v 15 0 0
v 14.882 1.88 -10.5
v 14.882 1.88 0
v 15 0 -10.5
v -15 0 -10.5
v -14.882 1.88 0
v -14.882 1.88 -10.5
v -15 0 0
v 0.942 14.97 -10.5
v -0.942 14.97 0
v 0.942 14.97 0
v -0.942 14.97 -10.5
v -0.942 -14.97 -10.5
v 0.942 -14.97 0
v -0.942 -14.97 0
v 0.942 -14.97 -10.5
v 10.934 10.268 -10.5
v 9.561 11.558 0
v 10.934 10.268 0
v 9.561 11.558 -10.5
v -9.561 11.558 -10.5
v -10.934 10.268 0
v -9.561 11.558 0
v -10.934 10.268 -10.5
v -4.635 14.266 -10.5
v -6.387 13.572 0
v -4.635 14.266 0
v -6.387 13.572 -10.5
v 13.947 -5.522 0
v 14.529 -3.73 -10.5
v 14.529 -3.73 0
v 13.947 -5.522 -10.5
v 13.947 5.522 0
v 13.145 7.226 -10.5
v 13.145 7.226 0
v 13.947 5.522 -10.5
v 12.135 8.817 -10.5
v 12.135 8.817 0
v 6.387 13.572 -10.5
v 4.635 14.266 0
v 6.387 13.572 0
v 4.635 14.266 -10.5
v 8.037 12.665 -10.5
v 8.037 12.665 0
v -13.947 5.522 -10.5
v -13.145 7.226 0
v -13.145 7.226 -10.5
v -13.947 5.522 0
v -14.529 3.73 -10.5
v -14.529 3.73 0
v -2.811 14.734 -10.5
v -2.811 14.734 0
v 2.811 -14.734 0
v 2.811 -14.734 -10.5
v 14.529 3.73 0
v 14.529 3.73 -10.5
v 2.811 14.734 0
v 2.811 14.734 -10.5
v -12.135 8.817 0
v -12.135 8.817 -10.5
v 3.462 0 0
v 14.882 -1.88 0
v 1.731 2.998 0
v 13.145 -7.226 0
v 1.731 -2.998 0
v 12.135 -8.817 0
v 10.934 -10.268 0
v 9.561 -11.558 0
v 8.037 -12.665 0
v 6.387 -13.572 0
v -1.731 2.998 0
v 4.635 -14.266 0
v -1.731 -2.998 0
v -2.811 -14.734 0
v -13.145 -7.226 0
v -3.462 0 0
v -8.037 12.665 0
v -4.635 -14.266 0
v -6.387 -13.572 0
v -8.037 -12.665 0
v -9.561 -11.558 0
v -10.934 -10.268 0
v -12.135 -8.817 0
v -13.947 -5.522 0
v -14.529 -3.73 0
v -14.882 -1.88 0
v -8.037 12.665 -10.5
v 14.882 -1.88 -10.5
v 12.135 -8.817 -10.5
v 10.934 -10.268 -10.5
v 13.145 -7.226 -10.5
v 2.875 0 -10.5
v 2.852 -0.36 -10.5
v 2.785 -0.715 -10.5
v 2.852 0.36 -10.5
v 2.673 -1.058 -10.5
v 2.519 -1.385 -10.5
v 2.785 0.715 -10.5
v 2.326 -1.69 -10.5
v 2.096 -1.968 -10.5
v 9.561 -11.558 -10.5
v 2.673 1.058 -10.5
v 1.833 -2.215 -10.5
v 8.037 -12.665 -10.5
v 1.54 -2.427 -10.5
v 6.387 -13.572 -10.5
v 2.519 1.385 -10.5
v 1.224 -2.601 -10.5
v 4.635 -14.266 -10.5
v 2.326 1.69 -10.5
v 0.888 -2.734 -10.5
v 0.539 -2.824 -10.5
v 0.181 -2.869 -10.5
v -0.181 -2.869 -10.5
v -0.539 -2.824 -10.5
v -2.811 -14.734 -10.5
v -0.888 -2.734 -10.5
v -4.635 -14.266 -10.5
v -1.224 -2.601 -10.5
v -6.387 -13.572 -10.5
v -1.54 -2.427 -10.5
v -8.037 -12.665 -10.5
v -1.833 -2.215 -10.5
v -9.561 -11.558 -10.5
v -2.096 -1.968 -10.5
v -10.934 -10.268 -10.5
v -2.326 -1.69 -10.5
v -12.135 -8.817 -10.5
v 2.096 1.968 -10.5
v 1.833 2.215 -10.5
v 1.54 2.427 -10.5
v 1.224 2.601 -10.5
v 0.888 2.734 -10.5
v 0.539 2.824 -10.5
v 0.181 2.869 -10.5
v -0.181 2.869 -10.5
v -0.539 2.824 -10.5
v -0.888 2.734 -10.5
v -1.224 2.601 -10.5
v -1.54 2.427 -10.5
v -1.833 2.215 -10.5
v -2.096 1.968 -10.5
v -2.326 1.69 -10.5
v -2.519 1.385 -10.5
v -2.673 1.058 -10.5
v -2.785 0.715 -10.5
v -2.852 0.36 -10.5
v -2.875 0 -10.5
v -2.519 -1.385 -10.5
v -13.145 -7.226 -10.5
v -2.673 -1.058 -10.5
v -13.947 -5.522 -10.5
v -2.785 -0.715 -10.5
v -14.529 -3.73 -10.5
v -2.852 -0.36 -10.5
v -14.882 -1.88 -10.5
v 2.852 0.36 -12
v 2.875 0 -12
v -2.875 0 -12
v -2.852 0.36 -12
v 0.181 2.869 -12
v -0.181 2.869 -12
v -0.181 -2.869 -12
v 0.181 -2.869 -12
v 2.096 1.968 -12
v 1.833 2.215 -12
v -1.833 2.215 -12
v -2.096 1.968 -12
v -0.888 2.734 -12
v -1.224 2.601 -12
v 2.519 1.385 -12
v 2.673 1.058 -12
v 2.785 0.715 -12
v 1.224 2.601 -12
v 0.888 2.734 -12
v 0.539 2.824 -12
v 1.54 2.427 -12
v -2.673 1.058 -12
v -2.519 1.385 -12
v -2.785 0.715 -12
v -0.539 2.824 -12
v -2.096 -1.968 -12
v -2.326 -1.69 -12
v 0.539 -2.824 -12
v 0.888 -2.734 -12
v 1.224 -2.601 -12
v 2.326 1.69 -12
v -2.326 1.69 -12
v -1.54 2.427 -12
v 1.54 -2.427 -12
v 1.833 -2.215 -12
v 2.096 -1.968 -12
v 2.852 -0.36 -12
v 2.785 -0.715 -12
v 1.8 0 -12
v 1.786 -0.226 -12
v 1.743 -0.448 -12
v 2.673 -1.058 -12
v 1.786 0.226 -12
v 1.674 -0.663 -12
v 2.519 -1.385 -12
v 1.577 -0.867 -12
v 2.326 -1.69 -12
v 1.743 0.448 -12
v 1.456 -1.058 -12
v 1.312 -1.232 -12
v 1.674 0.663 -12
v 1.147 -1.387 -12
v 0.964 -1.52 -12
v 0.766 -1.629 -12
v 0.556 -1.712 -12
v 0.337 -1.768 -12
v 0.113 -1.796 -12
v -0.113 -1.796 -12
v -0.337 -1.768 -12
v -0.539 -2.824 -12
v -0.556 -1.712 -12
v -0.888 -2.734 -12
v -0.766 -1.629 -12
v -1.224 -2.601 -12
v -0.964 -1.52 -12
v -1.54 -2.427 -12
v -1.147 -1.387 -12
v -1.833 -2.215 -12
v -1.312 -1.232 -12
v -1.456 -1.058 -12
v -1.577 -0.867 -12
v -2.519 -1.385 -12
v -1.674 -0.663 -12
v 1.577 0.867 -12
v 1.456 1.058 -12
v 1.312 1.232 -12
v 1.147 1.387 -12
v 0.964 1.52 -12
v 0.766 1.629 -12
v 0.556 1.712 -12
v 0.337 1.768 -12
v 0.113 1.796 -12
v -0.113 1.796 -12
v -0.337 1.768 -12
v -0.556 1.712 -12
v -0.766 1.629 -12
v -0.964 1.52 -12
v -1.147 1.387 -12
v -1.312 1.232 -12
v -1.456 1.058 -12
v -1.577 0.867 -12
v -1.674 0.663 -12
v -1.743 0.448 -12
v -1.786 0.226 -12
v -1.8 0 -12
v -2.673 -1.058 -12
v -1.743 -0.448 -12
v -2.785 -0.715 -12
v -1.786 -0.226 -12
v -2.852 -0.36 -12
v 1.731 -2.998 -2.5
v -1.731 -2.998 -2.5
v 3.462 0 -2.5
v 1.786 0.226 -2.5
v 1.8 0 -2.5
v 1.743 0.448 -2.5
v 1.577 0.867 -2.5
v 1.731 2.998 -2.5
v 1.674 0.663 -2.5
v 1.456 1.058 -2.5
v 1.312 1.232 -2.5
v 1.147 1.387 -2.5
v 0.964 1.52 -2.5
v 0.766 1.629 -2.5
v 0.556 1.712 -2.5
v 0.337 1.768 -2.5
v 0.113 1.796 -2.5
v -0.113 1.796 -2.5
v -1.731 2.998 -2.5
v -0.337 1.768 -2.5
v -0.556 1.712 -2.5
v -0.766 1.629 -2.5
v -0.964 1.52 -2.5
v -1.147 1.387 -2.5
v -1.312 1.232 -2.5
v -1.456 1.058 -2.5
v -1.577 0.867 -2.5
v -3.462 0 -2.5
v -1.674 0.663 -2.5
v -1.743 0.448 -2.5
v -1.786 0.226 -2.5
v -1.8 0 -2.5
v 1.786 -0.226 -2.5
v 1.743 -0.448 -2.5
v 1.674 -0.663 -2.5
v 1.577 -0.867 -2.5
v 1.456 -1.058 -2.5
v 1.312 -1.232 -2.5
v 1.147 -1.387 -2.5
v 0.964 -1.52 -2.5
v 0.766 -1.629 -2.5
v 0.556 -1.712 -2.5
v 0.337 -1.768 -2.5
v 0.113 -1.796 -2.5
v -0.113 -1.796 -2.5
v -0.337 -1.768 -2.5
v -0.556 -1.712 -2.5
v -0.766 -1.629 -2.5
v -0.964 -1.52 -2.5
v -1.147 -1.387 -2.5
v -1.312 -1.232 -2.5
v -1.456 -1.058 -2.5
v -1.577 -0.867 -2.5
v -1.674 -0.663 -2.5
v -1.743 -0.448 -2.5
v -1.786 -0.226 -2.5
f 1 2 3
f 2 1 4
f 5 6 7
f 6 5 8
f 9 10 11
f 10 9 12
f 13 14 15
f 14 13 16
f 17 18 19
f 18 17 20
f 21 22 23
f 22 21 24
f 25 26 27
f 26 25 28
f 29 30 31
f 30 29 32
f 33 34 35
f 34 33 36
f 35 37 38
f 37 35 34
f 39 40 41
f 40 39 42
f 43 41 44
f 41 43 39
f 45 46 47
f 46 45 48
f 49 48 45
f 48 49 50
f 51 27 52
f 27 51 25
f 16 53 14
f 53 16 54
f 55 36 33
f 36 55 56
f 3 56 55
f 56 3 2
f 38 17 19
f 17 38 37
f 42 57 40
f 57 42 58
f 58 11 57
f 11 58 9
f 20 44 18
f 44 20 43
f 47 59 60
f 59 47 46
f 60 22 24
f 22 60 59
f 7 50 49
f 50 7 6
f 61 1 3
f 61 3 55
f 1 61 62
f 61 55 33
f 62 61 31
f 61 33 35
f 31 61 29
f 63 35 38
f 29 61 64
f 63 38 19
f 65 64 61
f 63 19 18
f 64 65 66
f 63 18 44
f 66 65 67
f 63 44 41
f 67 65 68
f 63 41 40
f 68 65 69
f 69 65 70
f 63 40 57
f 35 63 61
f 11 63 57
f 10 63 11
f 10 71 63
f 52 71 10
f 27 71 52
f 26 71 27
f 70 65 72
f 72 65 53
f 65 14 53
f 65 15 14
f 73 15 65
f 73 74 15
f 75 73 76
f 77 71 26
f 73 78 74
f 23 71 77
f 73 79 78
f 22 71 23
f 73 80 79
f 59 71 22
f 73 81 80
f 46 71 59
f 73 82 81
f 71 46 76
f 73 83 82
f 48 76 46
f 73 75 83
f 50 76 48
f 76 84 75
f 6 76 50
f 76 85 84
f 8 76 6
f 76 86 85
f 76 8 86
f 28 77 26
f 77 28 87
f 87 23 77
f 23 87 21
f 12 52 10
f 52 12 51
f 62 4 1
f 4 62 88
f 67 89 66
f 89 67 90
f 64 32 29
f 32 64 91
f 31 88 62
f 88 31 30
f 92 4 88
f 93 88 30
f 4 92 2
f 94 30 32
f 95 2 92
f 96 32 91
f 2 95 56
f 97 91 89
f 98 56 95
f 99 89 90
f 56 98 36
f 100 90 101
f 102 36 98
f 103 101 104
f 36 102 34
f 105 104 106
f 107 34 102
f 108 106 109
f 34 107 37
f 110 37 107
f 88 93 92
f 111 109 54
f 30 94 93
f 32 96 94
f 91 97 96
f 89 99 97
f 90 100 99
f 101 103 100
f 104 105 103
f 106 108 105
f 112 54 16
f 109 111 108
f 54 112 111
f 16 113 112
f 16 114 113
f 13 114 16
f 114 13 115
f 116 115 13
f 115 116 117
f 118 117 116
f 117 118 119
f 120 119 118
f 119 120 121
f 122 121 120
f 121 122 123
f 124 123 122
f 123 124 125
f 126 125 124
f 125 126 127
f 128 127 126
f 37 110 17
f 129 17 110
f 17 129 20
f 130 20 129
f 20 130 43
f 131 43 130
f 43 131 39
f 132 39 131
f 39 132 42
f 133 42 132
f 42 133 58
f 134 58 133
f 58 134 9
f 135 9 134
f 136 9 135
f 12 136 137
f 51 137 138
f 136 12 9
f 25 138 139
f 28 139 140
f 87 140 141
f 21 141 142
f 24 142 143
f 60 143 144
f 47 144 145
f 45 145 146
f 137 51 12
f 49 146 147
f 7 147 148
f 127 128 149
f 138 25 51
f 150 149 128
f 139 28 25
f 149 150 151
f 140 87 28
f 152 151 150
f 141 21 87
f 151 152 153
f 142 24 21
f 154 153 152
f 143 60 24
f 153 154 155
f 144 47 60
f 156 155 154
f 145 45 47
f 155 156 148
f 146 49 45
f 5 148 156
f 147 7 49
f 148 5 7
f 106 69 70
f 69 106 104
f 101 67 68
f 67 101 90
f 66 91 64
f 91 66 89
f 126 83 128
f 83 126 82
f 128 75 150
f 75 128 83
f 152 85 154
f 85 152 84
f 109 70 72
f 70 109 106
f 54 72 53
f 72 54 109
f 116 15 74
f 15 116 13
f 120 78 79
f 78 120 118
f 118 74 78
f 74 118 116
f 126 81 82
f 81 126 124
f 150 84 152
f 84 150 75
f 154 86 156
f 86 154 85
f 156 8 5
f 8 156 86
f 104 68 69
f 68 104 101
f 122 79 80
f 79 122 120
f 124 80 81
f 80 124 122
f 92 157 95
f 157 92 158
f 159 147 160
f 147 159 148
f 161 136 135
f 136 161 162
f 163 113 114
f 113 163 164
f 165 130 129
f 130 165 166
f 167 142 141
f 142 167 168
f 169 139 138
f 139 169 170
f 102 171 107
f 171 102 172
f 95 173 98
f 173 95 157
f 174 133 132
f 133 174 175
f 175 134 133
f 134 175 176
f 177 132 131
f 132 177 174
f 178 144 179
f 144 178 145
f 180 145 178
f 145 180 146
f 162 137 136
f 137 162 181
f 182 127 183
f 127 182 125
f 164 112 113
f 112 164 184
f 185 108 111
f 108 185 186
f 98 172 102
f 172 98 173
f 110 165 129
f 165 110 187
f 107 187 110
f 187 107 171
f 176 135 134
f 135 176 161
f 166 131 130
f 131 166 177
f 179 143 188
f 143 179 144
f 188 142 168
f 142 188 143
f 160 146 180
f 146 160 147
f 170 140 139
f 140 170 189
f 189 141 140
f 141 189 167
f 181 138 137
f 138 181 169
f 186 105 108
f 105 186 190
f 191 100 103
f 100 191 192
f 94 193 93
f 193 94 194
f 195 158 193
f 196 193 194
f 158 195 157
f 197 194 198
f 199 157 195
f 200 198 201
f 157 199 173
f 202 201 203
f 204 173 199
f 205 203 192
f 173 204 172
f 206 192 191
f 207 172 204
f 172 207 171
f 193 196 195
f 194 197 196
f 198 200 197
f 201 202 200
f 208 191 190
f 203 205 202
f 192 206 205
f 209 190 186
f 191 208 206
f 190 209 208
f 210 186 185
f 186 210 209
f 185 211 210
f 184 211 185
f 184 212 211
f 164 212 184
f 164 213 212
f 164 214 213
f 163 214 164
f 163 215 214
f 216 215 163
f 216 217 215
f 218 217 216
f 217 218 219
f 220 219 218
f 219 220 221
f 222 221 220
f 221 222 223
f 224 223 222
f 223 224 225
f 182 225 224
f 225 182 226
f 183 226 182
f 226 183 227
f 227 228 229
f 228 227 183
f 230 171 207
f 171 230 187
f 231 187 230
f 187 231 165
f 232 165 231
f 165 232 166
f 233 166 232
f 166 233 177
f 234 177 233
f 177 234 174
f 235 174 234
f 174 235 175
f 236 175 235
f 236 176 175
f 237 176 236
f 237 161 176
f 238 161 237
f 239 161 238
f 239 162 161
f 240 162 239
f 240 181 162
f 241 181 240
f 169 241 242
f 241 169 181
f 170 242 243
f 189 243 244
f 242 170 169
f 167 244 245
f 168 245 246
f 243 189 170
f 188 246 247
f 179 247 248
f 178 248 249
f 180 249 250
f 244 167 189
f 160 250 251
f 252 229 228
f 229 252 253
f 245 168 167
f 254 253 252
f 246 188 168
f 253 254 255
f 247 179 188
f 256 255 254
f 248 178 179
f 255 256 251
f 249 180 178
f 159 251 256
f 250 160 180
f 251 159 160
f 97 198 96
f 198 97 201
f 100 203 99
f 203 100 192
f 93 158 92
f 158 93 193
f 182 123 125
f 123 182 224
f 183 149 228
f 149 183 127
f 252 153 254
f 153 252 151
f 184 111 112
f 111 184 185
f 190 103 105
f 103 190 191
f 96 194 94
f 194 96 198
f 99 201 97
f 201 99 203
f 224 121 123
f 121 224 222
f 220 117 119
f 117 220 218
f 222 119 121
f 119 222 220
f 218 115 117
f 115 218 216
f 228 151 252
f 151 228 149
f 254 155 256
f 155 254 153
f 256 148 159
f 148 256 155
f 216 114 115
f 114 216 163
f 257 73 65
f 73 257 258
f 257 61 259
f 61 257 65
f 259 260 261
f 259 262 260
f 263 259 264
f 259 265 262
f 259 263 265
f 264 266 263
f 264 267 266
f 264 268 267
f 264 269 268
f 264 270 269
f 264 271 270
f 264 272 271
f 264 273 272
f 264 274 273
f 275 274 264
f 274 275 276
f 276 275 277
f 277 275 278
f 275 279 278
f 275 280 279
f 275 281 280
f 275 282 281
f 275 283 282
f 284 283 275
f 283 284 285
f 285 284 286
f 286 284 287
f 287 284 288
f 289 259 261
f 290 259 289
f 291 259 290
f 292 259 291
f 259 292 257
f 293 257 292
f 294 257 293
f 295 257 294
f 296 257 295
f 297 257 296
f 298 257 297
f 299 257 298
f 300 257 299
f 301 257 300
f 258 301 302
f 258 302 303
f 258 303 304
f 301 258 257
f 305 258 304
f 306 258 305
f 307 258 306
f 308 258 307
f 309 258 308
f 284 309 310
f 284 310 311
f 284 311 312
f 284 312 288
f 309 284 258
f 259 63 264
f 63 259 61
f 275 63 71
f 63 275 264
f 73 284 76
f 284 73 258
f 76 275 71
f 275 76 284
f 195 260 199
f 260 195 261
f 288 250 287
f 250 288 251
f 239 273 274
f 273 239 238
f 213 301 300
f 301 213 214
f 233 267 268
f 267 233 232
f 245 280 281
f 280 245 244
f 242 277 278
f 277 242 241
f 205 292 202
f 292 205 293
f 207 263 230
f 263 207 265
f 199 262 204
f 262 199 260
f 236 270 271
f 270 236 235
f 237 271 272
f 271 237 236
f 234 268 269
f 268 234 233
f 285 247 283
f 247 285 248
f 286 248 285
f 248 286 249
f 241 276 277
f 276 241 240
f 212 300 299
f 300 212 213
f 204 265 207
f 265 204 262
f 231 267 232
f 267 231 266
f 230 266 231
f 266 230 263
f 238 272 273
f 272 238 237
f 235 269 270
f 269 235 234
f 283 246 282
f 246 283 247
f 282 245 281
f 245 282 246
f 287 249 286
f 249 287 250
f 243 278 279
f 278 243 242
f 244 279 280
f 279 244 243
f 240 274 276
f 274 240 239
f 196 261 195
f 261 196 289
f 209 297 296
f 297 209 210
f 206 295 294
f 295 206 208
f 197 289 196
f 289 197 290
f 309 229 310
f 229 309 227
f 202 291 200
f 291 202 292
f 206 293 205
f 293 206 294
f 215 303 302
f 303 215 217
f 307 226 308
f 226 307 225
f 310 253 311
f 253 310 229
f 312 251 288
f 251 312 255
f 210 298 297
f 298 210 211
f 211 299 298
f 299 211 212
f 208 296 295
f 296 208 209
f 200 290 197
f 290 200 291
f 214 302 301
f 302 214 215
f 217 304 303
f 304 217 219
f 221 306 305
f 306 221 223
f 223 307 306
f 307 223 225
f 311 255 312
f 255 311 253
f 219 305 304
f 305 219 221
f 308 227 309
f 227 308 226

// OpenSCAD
$fn = 50;


difference() {
	union() {
		translate(v = [0, 0, -10.5000000000]) {
			cylinder(h = 10.5000000000, r = 15.0000000000);
		}
		translate(v = [0, 0, -12.0000000000]) {
			cylinder(h = 12, r = 2.8750000000);
		}
	}
	union() {
		translate(v = [0, 0, 0]) {
			rotate(a = [0, 0, 0]) {
				difference() {
					union() {
						translate(v = [0, 0, -2.5000000000]) {
							linear_extrude(height = 2.5000000000) {
								polygon(points = [[3.4620000000, 0.0000000000], [1.7310000000, 2.9981799479], [-1.7310000000, 2.9981799479], [-3.4620000000, 0.0000000000], [-1.7310000000, -2.9981799479], [1.7310000000, -2.9981799479]]);
							}
						}
					}
					union();
				}
			}
		}
		#translate(v = [0, 0, -100.0000000000]) {
			cylinder(h = 200, r = 1.8000000000);
		}
	}
}
